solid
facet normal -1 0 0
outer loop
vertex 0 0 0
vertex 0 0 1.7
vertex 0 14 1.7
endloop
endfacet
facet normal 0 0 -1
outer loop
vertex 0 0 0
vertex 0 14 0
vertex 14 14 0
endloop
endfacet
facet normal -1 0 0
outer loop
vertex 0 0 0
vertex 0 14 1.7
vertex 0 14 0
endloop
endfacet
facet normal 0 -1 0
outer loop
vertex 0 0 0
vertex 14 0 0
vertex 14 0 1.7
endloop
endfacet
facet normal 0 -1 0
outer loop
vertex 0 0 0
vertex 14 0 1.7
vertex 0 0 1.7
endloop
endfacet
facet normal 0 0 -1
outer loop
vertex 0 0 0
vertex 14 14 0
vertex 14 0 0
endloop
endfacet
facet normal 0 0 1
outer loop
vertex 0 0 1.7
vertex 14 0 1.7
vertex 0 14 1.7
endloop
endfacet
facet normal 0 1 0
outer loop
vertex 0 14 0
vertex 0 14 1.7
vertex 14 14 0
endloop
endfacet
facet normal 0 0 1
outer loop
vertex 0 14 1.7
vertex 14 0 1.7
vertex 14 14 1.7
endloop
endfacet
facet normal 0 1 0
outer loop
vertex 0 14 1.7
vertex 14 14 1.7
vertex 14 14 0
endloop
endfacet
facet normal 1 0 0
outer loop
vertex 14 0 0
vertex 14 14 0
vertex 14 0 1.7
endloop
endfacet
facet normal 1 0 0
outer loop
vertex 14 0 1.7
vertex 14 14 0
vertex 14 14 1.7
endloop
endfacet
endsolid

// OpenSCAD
/* Warning, this is a very basic generator with a lot of approximation 
input data : [HSBGA, 9MX, 14x14x1.7mm, 256, , A, C04-00324A]
generated by com.zoubworld.electronics.cad.model3d.Basic
Date : Sun Feb 15 10:50:48 CET 2026
*/

//body
color("black")
translate([0,0,0])
cube([14.0,14.0,1.7], center=false);
